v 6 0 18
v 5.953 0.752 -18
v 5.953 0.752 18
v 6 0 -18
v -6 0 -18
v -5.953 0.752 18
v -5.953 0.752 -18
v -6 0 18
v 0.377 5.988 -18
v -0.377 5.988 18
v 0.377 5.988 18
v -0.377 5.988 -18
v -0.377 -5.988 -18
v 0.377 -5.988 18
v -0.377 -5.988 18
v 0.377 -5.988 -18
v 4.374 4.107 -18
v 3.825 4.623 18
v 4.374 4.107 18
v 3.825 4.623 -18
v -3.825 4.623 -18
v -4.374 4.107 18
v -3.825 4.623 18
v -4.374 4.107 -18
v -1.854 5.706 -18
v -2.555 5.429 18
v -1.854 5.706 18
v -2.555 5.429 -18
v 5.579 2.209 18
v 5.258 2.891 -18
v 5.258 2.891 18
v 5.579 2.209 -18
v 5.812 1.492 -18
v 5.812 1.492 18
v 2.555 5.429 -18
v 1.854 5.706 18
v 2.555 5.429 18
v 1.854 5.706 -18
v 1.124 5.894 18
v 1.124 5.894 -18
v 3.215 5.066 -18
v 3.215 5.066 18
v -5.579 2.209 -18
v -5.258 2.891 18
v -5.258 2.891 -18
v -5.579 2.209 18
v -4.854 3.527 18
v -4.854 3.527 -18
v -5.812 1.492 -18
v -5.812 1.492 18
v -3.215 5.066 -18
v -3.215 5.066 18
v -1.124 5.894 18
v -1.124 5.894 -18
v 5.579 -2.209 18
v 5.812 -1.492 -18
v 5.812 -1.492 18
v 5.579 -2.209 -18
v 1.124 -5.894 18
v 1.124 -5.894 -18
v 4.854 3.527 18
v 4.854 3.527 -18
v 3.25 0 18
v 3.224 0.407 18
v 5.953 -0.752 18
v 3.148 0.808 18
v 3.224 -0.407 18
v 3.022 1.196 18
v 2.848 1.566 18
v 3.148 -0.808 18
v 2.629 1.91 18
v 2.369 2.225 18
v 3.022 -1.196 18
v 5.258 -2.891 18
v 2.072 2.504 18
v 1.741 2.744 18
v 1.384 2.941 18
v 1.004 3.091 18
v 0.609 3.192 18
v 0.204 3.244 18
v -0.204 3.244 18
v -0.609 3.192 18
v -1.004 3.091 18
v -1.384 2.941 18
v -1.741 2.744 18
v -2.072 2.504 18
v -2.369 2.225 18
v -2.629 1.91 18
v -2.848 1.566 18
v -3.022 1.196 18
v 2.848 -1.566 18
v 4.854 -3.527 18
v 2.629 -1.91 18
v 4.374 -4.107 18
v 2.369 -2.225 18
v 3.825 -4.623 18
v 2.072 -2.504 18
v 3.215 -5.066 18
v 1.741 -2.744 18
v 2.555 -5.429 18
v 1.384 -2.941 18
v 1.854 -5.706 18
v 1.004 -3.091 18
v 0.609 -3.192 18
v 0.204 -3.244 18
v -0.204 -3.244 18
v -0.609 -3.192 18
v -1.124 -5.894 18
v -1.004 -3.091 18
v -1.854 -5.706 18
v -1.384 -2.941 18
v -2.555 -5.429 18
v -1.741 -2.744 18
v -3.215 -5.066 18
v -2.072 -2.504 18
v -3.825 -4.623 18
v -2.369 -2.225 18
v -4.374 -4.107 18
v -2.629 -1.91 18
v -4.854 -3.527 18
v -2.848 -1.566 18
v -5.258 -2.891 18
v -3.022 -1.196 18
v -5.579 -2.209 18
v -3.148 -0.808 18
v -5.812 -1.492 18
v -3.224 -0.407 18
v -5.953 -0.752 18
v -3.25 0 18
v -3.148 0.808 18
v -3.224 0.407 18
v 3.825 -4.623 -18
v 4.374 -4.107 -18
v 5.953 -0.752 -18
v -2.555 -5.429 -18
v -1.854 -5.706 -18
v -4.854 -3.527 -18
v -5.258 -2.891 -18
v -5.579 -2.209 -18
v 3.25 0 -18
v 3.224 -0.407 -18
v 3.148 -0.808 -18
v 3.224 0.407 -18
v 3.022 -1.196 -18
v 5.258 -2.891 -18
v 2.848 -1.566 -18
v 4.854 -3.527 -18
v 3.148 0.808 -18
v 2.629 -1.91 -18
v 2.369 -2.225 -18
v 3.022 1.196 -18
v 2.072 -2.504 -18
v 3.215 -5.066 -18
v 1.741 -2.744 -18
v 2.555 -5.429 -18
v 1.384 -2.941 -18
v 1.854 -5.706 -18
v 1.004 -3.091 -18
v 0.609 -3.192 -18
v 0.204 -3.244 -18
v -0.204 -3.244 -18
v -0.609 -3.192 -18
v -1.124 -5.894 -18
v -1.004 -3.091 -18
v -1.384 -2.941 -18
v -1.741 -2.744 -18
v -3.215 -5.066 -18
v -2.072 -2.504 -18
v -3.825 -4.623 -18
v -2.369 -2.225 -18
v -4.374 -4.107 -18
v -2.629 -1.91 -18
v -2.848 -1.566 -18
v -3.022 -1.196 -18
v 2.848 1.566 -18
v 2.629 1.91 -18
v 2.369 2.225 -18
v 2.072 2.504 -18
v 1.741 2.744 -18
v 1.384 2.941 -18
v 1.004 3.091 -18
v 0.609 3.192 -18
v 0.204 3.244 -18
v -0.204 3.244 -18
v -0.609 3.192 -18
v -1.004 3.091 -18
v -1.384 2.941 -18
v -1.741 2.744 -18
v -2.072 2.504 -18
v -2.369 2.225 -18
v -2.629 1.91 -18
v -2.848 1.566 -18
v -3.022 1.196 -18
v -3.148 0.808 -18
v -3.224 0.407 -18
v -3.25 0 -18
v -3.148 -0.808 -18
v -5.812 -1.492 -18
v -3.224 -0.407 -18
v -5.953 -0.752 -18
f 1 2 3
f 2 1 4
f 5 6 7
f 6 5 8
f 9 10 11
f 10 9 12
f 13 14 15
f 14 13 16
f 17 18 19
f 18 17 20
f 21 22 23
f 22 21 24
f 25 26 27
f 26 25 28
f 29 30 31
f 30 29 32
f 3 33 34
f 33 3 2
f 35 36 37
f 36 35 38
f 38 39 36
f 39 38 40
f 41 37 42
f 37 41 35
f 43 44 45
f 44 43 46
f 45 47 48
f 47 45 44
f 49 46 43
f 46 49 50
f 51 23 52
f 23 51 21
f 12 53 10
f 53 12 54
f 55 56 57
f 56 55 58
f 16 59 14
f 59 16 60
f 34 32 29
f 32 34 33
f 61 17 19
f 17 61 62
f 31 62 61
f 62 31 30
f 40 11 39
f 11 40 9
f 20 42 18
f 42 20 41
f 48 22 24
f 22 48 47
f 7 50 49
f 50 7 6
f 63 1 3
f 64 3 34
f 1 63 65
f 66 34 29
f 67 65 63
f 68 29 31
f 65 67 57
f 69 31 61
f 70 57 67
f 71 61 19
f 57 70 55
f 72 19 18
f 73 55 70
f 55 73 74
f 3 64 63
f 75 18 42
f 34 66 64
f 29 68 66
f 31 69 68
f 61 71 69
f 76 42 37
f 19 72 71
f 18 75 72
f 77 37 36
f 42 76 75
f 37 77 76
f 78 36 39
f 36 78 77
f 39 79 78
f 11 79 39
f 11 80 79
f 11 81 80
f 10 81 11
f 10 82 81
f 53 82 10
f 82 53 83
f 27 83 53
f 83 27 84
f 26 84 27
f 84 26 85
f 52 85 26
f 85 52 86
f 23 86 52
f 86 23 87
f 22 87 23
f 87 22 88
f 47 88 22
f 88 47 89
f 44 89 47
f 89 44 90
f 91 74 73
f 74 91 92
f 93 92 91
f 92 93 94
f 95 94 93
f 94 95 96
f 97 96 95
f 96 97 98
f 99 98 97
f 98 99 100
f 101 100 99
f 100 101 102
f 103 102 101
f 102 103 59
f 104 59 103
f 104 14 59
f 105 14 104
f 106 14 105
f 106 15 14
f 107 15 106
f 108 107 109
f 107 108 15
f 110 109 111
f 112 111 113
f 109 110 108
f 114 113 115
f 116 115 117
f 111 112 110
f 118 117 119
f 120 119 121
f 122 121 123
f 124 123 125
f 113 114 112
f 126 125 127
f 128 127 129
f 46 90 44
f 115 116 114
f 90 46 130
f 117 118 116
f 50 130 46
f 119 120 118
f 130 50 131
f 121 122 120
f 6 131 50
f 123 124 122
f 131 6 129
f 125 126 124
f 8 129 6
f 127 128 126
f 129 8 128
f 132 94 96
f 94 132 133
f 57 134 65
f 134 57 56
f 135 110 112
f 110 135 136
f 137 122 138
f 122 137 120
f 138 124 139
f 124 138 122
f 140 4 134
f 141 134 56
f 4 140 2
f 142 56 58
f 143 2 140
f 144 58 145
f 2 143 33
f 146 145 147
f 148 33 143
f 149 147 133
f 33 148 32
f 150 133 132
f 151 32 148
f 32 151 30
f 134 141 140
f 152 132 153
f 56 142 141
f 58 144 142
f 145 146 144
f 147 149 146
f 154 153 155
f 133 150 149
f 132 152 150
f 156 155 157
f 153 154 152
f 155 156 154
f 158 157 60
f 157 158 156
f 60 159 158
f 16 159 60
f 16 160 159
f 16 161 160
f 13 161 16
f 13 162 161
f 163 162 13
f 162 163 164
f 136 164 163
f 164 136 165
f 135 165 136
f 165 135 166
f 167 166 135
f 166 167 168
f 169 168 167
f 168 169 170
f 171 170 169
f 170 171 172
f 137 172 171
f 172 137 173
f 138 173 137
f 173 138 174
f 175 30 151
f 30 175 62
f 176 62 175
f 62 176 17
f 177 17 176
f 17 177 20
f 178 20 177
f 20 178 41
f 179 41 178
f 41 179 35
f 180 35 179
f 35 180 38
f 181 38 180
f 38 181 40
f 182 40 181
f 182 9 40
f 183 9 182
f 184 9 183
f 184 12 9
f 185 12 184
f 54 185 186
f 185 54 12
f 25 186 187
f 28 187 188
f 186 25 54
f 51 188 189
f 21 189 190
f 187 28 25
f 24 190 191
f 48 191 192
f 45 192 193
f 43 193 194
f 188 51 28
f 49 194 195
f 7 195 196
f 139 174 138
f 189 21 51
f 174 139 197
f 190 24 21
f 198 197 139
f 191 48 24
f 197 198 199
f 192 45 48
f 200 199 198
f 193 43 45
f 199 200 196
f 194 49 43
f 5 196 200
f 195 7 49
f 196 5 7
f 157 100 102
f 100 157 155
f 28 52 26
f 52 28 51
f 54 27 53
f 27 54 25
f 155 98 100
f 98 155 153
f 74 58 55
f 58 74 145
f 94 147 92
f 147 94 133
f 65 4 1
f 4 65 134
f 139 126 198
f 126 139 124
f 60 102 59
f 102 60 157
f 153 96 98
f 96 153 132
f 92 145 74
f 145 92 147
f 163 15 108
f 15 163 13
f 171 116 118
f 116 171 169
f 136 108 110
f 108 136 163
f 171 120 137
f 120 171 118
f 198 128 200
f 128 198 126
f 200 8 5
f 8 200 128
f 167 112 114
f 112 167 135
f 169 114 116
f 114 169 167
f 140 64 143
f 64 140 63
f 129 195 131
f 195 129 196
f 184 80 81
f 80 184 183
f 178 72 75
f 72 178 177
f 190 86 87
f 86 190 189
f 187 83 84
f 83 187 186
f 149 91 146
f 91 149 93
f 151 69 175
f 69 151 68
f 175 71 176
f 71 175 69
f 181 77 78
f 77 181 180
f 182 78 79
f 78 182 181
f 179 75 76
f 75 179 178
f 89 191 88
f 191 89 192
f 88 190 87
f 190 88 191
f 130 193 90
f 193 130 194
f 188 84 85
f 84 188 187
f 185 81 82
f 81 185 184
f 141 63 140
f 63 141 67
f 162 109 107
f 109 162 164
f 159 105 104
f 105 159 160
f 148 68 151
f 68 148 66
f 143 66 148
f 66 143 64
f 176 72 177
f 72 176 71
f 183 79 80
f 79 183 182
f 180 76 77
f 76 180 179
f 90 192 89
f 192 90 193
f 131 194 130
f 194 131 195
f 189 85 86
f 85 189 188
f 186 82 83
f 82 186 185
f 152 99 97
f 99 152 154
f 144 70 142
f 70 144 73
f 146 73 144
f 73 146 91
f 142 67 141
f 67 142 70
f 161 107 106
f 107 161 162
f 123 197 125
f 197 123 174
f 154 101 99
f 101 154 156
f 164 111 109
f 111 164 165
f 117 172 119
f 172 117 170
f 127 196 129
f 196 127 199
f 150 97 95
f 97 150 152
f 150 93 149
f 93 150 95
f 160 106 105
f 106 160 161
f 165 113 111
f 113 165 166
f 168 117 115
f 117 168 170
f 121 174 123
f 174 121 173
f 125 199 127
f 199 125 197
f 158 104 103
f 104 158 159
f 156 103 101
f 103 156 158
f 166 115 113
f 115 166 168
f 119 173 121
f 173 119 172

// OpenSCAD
$fn = 50;


difference() {
	union() {
		translate(v = [0, 0, -18.0000000000]) {
			cylinder(h = 36, r = 6.0000000000);
		}
	}
	union() {
		translate(v = [0, 0, -100.0000000000]) {
			cylinder(h = 200, r = 3.2500000000);
		}
	}
}
